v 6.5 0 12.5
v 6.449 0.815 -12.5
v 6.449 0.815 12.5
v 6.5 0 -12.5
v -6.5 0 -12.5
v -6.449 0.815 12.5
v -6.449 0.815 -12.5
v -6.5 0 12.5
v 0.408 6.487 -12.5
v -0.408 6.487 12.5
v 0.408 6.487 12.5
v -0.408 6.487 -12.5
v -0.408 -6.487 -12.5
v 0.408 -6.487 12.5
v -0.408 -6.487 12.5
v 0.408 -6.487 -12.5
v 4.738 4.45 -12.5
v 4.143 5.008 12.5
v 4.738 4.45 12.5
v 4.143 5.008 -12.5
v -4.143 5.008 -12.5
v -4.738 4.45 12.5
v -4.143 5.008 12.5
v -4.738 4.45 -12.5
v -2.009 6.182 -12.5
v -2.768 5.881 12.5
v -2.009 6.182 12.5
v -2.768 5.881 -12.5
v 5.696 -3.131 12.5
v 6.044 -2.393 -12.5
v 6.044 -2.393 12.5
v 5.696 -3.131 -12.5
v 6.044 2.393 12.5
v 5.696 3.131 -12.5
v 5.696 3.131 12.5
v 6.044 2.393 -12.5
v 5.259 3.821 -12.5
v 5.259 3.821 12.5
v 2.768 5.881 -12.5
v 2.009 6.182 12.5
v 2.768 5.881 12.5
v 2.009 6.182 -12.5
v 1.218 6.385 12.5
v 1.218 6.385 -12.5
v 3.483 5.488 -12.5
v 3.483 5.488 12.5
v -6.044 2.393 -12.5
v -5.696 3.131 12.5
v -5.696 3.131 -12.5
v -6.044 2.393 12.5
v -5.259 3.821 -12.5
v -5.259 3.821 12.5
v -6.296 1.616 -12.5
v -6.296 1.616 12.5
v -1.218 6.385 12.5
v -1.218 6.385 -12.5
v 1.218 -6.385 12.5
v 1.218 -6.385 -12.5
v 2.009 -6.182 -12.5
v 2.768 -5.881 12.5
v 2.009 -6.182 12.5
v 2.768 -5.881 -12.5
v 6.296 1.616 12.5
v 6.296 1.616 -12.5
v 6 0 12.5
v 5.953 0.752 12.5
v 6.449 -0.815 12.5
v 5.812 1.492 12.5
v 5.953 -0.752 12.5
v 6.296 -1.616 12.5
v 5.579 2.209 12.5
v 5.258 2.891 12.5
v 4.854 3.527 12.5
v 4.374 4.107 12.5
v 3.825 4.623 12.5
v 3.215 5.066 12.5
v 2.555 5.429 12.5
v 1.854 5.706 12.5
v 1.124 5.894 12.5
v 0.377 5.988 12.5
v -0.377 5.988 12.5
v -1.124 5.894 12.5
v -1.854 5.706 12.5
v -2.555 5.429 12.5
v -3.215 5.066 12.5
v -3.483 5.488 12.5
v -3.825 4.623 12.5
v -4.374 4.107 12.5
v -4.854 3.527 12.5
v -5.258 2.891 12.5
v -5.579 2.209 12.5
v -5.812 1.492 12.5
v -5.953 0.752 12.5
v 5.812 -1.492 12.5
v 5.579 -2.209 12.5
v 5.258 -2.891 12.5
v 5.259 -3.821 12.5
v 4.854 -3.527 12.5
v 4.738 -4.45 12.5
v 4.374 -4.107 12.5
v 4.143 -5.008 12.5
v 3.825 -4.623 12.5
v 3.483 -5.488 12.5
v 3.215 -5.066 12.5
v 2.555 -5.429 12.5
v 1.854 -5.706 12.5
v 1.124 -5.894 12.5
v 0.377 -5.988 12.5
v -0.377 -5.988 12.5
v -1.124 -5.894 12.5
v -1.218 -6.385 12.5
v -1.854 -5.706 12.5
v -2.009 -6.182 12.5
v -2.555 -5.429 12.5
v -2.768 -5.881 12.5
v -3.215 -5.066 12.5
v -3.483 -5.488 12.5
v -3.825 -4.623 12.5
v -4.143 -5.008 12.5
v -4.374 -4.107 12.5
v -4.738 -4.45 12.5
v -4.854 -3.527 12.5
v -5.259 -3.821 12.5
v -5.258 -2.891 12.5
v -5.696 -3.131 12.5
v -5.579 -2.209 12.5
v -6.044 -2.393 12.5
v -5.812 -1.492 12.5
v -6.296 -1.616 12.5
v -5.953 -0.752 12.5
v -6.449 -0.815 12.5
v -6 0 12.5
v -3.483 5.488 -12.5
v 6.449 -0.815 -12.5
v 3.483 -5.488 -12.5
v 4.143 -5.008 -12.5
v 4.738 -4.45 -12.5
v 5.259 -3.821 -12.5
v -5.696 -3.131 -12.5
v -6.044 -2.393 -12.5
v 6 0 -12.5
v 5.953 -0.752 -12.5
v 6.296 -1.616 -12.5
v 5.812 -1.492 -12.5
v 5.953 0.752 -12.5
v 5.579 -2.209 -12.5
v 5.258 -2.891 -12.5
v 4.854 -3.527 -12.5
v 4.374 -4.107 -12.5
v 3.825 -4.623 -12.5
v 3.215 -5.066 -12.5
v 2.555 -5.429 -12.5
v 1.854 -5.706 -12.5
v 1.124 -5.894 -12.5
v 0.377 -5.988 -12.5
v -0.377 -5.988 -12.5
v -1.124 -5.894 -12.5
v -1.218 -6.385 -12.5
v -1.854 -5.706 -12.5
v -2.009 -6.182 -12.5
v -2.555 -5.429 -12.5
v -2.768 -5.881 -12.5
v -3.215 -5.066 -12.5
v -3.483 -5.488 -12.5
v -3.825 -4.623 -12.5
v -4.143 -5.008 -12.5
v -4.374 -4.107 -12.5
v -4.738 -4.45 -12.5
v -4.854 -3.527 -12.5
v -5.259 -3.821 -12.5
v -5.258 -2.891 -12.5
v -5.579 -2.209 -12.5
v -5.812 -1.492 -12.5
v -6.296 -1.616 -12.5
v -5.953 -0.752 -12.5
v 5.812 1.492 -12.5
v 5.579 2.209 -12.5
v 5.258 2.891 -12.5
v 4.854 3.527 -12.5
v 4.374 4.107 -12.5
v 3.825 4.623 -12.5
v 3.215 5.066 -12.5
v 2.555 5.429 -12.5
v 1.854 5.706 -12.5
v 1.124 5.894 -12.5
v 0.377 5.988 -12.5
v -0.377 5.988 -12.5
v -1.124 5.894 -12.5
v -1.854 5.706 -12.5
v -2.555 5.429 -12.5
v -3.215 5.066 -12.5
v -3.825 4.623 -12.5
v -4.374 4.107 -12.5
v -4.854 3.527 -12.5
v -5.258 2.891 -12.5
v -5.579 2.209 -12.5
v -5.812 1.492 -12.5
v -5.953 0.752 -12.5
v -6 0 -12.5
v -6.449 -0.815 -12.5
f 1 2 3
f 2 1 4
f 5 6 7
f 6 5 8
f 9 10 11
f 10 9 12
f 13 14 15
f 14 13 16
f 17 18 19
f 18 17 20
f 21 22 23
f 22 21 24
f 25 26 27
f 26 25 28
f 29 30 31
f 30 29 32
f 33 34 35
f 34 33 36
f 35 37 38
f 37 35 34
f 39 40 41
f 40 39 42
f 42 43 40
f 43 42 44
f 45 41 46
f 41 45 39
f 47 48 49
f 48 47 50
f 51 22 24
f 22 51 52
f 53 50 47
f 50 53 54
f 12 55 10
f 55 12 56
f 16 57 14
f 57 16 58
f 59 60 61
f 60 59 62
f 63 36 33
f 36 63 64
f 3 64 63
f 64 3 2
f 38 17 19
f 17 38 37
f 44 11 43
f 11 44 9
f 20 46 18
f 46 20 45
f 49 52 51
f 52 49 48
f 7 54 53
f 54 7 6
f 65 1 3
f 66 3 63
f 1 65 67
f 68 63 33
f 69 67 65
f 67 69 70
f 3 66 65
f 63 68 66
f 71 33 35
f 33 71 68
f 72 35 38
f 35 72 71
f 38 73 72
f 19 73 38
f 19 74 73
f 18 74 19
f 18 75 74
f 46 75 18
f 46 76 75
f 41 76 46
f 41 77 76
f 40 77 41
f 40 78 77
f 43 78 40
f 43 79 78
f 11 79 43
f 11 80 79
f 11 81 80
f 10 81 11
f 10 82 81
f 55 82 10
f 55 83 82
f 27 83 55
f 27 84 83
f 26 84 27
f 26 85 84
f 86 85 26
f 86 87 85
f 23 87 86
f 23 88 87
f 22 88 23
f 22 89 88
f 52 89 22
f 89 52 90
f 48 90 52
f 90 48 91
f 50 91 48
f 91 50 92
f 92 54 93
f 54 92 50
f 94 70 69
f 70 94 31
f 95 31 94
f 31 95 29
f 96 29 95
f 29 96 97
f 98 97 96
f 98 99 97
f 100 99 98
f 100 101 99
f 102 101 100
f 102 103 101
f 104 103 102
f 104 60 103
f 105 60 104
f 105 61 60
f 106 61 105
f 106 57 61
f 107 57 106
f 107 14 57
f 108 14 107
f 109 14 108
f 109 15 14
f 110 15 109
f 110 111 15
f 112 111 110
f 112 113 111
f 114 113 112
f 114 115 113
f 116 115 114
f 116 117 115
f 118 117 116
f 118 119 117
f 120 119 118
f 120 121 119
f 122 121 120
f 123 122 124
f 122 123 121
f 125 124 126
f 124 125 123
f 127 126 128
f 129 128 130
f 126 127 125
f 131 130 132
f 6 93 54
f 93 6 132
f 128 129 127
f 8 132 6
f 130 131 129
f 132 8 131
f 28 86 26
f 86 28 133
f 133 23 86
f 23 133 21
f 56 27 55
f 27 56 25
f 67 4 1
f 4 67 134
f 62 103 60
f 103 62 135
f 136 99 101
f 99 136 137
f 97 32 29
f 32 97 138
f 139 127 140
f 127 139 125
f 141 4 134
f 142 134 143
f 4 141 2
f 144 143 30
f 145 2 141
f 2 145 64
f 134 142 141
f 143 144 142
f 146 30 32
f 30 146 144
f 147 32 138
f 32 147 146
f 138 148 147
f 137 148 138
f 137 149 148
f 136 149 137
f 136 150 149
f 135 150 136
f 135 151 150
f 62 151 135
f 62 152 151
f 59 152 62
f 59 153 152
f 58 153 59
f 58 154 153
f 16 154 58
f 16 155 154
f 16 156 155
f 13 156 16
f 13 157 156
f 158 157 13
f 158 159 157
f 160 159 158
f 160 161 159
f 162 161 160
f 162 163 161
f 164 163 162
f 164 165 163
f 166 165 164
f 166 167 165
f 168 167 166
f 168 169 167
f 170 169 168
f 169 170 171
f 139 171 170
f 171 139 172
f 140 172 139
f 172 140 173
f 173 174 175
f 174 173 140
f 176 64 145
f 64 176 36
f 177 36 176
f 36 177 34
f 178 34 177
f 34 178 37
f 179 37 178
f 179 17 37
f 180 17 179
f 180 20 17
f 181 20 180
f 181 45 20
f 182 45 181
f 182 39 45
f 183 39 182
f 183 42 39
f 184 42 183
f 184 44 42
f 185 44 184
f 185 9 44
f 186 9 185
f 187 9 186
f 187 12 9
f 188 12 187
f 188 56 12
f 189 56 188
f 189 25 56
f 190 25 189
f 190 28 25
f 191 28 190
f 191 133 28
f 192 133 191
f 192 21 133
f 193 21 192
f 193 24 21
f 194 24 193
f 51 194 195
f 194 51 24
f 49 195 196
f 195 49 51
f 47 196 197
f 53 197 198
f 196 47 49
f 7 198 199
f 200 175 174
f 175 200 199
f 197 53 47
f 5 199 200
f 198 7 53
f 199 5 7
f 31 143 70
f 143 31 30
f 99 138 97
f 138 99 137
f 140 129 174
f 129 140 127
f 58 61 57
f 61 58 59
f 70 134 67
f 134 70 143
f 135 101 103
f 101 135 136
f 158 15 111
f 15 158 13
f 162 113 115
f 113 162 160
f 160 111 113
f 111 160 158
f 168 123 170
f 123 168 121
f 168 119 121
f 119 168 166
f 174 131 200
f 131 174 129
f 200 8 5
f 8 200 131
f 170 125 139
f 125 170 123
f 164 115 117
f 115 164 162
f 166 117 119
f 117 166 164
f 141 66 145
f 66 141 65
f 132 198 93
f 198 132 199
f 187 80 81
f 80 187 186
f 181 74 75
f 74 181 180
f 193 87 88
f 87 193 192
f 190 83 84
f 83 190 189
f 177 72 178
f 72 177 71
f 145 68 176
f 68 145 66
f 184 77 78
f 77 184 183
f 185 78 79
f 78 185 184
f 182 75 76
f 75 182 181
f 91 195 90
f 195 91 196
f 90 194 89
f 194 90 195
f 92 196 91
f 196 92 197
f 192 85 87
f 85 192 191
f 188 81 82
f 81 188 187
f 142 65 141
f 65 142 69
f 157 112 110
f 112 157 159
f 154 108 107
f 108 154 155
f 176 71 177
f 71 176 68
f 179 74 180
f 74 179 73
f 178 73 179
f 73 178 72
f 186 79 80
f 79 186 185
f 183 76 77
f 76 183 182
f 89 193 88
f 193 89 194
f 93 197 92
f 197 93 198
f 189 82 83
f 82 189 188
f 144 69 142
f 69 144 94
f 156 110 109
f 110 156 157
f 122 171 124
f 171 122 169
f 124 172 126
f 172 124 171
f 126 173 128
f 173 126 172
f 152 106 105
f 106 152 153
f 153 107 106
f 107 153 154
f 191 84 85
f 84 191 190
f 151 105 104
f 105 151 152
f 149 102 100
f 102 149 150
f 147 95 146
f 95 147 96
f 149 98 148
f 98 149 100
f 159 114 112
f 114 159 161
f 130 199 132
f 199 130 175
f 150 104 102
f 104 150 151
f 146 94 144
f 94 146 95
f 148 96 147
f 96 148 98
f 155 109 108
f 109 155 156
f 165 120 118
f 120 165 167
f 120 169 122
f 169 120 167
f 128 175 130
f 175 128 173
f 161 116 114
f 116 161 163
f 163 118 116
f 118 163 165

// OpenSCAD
$fn = 50;


difference() {
	union() {
		translate(v = [0, 0, -12.5000000000]) {
			cylinder(h = 25, r = 6.5000000000);
		}
	}
	union() {
		translate(v = [0, 0, -100.0000000000]) {
			cylinder(h = 200, r = 6);
		}
	}
}
